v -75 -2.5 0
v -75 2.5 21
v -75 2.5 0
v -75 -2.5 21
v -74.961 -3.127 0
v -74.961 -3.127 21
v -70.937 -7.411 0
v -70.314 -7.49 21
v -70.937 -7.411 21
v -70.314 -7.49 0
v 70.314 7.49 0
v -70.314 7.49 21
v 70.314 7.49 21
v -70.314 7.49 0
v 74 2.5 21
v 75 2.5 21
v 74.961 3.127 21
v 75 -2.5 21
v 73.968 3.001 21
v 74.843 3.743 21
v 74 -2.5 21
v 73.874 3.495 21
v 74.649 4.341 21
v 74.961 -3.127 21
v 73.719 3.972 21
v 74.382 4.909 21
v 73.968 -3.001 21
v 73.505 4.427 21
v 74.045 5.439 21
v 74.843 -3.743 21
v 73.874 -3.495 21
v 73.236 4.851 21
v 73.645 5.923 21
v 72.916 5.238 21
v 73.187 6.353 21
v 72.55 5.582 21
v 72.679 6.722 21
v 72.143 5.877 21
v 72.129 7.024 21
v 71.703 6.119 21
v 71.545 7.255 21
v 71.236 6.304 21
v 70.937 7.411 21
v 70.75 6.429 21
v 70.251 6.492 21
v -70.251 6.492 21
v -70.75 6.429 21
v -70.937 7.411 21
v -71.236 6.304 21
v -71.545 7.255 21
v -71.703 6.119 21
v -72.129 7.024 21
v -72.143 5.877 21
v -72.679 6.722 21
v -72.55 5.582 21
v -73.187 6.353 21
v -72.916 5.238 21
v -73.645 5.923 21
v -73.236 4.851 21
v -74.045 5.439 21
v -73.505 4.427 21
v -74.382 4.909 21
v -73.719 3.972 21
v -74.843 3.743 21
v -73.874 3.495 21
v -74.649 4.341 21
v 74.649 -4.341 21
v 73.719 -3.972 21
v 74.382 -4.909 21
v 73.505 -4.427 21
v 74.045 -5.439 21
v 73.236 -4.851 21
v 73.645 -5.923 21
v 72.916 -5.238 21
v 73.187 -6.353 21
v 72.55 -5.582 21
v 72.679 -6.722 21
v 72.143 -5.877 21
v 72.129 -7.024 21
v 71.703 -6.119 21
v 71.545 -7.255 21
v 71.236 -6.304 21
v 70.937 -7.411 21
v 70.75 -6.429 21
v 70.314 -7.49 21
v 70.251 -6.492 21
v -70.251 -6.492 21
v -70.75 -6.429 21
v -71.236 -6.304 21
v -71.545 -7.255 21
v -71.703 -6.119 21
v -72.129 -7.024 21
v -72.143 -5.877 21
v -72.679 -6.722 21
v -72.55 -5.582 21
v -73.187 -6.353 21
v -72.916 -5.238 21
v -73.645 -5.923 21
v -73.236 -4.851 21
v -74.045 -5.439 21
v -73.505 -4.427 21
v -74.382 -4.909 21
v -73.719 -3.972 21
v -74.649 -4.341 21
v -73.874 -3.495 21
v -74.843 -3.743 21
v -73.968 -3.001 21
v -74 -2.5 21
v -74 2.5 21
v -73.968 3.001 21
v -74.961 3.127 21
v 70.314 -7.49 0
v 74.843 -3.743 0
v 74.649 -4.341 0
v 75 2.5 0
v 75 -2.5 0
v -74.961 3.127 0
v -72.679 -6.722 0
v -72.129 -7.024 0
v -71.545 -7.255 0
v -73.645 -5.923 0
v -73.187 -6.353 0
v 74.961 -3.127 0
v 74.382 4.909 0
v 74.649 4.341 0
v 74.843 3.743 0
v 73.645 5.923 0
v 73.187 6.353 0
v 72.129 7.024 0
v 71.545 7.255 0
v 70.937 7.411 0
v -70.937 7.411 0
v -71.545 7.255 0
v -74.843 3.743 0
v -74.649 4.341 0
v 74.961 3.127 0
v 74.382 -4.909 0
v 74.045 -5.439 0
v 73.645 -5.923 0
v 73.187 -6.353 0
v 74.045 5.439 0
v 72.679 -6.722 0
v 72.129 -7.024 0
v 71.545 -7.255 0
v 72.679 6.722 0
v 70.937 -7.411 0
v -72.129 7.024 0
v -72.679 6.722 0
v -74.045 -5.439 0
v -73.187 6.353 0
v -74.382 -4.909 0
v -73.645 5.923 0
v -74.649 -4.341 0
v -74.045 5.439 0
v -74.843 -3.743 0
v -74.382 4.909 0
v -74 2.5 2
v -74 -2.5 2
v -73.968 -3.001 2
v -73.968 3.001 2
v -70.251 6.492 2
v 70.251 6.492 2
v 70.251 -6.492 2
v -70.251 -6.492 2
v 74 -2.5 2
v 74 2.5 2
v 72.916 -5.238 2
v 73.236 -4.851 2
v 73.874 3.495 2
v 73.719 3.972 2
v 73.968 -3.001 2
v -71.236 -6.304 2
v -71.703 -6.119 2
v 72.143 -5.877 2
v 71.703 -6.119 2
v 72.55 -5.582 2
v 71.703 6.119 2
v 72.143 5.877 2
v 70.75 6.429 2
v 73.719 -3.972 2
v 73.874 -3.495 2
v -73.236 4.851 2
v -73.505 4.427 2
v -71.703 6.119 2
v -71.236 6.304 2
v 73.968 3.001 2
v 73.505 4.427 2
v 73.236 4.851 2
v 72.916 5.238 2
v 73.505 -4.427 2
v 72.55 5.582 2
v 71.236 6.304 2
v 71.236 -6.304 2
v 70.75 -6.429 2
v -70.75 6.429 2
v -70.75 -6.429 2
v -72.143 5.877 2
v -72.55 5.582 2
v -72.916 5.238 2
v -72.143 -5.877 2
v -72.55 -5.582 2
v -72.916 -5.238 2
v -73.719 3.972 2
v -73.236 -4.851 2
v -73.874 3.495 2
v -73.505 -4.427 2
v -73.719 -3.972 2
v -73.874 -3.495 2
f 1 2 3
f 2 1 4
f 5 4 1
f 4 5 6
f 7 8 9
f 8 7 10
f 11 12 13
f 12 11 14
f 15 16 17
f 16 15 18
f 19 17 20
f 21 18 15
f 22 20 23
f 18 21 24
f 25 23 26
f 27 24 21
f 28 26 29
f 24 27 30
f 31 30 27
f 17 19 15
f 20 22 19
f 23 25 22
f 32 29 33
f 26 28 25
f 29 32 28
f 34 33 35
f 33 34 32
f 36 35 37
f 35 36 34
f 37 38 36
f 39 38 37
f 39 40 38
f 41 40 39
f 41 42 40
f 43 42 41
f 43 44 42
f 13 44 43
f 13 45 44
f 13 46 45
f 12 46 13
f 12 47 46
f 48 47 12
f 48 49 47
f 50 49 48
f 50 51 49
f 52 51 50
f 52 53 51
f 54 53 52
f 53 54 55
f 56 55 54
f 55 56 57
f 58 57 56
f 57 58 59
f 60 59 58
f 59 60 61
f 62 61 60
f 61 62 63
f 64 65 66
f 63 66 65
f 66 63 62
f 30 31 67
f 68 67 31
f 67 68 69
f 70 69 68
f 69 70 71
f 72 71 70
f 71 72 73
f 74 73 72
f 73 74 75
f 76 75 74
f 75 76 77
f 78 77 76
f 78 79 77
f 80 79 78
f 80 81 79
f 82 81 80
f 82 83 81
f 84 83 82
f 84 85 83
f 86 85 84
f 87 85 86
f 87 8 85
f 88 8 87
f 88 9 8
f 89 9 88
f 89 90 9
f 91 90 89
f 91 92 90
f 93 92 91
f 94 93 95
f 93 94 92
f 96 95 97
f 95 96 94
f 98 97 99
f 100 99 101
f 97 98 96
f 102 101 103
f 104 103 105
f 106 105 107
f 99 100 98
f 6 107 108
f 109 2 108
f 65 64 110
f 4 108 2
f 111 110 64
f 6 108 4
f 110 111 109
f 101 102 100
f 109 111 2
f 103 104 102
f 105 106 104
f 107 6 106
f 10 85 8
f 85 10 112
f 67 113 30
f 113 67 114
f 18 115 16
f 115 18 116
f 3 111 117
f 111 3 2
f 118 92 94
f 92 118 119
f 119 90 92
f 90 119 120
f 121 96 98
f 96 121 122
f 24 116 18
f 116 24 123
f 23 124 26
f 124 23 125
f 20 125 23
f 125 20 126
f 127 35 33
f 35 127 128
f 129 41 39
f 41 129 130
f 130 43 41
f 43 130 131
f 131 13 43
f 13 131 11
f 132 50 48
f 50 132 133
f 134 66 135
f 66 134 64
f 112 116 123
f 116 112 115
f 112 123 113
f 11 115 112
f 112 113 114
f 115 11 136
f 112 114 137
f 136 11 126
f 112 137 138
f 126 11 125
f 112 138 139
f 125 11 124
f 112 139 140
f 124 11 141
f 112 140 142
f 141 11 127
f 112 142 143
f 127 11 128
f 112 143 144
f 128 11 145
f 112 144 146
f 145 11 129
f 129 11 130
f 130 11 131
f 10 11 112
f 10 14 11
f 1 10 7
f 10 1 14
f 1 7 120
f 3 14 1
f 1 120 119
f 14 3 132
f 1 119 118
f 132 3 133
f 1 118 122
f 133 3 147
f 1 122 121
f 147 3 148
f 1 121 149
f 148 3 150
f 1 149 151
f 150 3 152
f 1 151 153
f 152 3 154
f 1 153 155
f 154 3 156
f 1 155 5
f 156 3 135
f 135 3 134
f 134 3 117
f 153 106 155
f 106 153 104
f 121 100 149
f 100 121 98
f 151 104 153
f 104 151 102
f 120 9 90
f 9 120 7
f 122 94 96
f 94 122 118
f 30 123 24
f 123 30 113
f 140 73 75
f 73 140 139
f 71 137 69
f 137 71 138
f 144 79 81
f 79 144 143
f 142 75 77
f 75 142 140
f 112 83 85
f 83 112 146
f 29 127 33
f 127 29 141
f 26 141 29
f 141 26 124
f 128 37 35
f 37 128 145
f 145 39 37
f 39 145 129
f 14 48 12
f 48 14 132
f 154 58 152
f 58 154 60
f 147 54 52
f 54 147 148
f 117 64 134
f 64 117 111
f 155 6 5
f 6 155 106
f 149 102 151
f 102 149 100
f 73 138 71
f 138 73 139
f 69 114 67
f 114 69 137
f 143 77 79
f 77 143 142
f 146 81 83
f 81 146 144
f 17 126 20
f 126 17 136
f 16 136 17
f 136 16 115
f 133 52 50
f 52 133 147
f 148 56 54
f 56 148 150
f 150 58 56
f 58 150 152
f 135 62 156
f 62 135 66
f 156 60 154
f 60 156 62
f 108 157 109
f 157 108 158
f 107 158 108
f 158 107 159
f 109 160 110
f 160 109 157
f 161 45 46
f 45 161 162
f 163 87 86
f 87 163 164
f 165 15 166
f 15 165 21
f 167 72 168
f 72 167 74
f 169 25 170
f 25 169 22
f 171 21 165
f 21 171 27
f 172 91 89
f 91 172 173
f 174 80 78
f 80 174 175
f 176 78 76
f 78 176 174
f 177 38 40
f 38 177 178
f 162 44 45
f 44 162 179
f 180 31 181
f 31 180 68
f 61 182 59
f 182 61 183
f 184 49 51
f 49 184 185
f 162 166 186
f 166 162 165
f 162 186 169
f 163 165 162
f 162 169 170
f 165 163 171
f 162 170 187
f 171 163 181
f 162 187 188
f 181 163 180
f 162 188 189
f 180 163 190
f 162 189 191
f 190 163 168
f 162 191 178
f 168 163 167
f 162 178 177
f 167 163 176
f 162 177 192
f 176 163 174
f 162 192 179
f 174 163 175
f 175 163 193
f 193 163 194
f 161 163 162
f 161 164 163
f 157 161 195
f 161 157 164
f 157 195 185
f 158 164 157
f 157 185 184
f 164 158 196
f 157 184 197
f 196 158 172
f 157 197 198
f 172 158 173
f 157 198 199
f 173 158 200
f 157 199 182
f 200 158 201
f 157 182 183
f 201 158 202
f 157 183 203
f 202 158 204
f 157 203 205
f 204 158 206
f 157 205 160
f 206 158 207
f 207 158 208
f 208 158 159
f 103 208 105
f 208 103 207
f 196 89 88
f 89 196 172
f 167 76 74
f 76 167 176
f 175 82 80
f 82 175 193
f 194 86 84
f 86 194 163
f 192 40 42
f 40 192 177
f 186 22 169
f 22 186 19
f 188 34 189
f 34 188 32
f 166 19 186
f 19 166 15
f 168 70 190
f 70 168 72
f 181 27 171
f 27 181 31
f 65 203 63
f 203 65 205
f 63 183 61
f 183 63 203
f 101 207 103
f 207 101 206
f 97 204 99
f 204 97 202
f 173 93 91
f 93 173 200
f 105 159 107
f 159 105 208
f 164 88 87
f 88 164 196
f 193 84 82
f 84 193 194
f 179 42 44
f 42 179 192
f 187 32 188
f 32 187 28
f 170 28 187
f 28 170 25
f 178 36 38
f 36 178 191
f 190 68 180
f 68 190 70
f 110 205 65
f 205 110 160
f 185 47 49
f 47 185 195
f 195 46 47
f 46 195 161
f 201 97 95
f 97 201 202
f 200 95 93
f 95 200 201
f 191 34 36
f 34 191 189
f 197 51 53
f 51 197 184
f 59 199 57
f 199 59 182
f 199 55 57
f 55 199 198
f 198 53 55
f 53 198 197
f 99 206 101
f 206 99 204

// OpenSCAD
$fn = 50;


difference() {
	union() {
		hull() {
			translate(v = [-70.0000000000, 2.5000000000, 0]) {
				cylinder(h = 21, r = 5);
			}
			translate(v = [70.0000000000, 2.5000000000, 0]) {
				cylinder(h = 21, r = 5);
			}
			translate(v = [-70.0000000000, -2.5000000000, 0]) {
				cylinder(h = 21, r = 5);
			}
			translate(v = [70.0000000000, -2.5000000000, 0]) {
				cylinder(h = 21, r = 5);
			}
		}
	}
	union() {
		translate(v = [0, 0, 2]) {
			hull() {
				translate(v = [-70.0000000000, 2.5000000000, 0]) {
					cylinder(h = 19, r = 4);
				}
				translate(v = [70.0000000000, 2.5000000000, 0]) {
					cylinder(h = 19, r = 4);
				}
				translate(v = [-70.0000000000, -2.5000000000, 0]) {
					cylinder(h = 19, r = 4);
				}
				translate(v = [70.0000000000, -2.5000000000, 0]) {
					cylinder(h = 19, r = 4);
				}
			}
		}
	}
}
